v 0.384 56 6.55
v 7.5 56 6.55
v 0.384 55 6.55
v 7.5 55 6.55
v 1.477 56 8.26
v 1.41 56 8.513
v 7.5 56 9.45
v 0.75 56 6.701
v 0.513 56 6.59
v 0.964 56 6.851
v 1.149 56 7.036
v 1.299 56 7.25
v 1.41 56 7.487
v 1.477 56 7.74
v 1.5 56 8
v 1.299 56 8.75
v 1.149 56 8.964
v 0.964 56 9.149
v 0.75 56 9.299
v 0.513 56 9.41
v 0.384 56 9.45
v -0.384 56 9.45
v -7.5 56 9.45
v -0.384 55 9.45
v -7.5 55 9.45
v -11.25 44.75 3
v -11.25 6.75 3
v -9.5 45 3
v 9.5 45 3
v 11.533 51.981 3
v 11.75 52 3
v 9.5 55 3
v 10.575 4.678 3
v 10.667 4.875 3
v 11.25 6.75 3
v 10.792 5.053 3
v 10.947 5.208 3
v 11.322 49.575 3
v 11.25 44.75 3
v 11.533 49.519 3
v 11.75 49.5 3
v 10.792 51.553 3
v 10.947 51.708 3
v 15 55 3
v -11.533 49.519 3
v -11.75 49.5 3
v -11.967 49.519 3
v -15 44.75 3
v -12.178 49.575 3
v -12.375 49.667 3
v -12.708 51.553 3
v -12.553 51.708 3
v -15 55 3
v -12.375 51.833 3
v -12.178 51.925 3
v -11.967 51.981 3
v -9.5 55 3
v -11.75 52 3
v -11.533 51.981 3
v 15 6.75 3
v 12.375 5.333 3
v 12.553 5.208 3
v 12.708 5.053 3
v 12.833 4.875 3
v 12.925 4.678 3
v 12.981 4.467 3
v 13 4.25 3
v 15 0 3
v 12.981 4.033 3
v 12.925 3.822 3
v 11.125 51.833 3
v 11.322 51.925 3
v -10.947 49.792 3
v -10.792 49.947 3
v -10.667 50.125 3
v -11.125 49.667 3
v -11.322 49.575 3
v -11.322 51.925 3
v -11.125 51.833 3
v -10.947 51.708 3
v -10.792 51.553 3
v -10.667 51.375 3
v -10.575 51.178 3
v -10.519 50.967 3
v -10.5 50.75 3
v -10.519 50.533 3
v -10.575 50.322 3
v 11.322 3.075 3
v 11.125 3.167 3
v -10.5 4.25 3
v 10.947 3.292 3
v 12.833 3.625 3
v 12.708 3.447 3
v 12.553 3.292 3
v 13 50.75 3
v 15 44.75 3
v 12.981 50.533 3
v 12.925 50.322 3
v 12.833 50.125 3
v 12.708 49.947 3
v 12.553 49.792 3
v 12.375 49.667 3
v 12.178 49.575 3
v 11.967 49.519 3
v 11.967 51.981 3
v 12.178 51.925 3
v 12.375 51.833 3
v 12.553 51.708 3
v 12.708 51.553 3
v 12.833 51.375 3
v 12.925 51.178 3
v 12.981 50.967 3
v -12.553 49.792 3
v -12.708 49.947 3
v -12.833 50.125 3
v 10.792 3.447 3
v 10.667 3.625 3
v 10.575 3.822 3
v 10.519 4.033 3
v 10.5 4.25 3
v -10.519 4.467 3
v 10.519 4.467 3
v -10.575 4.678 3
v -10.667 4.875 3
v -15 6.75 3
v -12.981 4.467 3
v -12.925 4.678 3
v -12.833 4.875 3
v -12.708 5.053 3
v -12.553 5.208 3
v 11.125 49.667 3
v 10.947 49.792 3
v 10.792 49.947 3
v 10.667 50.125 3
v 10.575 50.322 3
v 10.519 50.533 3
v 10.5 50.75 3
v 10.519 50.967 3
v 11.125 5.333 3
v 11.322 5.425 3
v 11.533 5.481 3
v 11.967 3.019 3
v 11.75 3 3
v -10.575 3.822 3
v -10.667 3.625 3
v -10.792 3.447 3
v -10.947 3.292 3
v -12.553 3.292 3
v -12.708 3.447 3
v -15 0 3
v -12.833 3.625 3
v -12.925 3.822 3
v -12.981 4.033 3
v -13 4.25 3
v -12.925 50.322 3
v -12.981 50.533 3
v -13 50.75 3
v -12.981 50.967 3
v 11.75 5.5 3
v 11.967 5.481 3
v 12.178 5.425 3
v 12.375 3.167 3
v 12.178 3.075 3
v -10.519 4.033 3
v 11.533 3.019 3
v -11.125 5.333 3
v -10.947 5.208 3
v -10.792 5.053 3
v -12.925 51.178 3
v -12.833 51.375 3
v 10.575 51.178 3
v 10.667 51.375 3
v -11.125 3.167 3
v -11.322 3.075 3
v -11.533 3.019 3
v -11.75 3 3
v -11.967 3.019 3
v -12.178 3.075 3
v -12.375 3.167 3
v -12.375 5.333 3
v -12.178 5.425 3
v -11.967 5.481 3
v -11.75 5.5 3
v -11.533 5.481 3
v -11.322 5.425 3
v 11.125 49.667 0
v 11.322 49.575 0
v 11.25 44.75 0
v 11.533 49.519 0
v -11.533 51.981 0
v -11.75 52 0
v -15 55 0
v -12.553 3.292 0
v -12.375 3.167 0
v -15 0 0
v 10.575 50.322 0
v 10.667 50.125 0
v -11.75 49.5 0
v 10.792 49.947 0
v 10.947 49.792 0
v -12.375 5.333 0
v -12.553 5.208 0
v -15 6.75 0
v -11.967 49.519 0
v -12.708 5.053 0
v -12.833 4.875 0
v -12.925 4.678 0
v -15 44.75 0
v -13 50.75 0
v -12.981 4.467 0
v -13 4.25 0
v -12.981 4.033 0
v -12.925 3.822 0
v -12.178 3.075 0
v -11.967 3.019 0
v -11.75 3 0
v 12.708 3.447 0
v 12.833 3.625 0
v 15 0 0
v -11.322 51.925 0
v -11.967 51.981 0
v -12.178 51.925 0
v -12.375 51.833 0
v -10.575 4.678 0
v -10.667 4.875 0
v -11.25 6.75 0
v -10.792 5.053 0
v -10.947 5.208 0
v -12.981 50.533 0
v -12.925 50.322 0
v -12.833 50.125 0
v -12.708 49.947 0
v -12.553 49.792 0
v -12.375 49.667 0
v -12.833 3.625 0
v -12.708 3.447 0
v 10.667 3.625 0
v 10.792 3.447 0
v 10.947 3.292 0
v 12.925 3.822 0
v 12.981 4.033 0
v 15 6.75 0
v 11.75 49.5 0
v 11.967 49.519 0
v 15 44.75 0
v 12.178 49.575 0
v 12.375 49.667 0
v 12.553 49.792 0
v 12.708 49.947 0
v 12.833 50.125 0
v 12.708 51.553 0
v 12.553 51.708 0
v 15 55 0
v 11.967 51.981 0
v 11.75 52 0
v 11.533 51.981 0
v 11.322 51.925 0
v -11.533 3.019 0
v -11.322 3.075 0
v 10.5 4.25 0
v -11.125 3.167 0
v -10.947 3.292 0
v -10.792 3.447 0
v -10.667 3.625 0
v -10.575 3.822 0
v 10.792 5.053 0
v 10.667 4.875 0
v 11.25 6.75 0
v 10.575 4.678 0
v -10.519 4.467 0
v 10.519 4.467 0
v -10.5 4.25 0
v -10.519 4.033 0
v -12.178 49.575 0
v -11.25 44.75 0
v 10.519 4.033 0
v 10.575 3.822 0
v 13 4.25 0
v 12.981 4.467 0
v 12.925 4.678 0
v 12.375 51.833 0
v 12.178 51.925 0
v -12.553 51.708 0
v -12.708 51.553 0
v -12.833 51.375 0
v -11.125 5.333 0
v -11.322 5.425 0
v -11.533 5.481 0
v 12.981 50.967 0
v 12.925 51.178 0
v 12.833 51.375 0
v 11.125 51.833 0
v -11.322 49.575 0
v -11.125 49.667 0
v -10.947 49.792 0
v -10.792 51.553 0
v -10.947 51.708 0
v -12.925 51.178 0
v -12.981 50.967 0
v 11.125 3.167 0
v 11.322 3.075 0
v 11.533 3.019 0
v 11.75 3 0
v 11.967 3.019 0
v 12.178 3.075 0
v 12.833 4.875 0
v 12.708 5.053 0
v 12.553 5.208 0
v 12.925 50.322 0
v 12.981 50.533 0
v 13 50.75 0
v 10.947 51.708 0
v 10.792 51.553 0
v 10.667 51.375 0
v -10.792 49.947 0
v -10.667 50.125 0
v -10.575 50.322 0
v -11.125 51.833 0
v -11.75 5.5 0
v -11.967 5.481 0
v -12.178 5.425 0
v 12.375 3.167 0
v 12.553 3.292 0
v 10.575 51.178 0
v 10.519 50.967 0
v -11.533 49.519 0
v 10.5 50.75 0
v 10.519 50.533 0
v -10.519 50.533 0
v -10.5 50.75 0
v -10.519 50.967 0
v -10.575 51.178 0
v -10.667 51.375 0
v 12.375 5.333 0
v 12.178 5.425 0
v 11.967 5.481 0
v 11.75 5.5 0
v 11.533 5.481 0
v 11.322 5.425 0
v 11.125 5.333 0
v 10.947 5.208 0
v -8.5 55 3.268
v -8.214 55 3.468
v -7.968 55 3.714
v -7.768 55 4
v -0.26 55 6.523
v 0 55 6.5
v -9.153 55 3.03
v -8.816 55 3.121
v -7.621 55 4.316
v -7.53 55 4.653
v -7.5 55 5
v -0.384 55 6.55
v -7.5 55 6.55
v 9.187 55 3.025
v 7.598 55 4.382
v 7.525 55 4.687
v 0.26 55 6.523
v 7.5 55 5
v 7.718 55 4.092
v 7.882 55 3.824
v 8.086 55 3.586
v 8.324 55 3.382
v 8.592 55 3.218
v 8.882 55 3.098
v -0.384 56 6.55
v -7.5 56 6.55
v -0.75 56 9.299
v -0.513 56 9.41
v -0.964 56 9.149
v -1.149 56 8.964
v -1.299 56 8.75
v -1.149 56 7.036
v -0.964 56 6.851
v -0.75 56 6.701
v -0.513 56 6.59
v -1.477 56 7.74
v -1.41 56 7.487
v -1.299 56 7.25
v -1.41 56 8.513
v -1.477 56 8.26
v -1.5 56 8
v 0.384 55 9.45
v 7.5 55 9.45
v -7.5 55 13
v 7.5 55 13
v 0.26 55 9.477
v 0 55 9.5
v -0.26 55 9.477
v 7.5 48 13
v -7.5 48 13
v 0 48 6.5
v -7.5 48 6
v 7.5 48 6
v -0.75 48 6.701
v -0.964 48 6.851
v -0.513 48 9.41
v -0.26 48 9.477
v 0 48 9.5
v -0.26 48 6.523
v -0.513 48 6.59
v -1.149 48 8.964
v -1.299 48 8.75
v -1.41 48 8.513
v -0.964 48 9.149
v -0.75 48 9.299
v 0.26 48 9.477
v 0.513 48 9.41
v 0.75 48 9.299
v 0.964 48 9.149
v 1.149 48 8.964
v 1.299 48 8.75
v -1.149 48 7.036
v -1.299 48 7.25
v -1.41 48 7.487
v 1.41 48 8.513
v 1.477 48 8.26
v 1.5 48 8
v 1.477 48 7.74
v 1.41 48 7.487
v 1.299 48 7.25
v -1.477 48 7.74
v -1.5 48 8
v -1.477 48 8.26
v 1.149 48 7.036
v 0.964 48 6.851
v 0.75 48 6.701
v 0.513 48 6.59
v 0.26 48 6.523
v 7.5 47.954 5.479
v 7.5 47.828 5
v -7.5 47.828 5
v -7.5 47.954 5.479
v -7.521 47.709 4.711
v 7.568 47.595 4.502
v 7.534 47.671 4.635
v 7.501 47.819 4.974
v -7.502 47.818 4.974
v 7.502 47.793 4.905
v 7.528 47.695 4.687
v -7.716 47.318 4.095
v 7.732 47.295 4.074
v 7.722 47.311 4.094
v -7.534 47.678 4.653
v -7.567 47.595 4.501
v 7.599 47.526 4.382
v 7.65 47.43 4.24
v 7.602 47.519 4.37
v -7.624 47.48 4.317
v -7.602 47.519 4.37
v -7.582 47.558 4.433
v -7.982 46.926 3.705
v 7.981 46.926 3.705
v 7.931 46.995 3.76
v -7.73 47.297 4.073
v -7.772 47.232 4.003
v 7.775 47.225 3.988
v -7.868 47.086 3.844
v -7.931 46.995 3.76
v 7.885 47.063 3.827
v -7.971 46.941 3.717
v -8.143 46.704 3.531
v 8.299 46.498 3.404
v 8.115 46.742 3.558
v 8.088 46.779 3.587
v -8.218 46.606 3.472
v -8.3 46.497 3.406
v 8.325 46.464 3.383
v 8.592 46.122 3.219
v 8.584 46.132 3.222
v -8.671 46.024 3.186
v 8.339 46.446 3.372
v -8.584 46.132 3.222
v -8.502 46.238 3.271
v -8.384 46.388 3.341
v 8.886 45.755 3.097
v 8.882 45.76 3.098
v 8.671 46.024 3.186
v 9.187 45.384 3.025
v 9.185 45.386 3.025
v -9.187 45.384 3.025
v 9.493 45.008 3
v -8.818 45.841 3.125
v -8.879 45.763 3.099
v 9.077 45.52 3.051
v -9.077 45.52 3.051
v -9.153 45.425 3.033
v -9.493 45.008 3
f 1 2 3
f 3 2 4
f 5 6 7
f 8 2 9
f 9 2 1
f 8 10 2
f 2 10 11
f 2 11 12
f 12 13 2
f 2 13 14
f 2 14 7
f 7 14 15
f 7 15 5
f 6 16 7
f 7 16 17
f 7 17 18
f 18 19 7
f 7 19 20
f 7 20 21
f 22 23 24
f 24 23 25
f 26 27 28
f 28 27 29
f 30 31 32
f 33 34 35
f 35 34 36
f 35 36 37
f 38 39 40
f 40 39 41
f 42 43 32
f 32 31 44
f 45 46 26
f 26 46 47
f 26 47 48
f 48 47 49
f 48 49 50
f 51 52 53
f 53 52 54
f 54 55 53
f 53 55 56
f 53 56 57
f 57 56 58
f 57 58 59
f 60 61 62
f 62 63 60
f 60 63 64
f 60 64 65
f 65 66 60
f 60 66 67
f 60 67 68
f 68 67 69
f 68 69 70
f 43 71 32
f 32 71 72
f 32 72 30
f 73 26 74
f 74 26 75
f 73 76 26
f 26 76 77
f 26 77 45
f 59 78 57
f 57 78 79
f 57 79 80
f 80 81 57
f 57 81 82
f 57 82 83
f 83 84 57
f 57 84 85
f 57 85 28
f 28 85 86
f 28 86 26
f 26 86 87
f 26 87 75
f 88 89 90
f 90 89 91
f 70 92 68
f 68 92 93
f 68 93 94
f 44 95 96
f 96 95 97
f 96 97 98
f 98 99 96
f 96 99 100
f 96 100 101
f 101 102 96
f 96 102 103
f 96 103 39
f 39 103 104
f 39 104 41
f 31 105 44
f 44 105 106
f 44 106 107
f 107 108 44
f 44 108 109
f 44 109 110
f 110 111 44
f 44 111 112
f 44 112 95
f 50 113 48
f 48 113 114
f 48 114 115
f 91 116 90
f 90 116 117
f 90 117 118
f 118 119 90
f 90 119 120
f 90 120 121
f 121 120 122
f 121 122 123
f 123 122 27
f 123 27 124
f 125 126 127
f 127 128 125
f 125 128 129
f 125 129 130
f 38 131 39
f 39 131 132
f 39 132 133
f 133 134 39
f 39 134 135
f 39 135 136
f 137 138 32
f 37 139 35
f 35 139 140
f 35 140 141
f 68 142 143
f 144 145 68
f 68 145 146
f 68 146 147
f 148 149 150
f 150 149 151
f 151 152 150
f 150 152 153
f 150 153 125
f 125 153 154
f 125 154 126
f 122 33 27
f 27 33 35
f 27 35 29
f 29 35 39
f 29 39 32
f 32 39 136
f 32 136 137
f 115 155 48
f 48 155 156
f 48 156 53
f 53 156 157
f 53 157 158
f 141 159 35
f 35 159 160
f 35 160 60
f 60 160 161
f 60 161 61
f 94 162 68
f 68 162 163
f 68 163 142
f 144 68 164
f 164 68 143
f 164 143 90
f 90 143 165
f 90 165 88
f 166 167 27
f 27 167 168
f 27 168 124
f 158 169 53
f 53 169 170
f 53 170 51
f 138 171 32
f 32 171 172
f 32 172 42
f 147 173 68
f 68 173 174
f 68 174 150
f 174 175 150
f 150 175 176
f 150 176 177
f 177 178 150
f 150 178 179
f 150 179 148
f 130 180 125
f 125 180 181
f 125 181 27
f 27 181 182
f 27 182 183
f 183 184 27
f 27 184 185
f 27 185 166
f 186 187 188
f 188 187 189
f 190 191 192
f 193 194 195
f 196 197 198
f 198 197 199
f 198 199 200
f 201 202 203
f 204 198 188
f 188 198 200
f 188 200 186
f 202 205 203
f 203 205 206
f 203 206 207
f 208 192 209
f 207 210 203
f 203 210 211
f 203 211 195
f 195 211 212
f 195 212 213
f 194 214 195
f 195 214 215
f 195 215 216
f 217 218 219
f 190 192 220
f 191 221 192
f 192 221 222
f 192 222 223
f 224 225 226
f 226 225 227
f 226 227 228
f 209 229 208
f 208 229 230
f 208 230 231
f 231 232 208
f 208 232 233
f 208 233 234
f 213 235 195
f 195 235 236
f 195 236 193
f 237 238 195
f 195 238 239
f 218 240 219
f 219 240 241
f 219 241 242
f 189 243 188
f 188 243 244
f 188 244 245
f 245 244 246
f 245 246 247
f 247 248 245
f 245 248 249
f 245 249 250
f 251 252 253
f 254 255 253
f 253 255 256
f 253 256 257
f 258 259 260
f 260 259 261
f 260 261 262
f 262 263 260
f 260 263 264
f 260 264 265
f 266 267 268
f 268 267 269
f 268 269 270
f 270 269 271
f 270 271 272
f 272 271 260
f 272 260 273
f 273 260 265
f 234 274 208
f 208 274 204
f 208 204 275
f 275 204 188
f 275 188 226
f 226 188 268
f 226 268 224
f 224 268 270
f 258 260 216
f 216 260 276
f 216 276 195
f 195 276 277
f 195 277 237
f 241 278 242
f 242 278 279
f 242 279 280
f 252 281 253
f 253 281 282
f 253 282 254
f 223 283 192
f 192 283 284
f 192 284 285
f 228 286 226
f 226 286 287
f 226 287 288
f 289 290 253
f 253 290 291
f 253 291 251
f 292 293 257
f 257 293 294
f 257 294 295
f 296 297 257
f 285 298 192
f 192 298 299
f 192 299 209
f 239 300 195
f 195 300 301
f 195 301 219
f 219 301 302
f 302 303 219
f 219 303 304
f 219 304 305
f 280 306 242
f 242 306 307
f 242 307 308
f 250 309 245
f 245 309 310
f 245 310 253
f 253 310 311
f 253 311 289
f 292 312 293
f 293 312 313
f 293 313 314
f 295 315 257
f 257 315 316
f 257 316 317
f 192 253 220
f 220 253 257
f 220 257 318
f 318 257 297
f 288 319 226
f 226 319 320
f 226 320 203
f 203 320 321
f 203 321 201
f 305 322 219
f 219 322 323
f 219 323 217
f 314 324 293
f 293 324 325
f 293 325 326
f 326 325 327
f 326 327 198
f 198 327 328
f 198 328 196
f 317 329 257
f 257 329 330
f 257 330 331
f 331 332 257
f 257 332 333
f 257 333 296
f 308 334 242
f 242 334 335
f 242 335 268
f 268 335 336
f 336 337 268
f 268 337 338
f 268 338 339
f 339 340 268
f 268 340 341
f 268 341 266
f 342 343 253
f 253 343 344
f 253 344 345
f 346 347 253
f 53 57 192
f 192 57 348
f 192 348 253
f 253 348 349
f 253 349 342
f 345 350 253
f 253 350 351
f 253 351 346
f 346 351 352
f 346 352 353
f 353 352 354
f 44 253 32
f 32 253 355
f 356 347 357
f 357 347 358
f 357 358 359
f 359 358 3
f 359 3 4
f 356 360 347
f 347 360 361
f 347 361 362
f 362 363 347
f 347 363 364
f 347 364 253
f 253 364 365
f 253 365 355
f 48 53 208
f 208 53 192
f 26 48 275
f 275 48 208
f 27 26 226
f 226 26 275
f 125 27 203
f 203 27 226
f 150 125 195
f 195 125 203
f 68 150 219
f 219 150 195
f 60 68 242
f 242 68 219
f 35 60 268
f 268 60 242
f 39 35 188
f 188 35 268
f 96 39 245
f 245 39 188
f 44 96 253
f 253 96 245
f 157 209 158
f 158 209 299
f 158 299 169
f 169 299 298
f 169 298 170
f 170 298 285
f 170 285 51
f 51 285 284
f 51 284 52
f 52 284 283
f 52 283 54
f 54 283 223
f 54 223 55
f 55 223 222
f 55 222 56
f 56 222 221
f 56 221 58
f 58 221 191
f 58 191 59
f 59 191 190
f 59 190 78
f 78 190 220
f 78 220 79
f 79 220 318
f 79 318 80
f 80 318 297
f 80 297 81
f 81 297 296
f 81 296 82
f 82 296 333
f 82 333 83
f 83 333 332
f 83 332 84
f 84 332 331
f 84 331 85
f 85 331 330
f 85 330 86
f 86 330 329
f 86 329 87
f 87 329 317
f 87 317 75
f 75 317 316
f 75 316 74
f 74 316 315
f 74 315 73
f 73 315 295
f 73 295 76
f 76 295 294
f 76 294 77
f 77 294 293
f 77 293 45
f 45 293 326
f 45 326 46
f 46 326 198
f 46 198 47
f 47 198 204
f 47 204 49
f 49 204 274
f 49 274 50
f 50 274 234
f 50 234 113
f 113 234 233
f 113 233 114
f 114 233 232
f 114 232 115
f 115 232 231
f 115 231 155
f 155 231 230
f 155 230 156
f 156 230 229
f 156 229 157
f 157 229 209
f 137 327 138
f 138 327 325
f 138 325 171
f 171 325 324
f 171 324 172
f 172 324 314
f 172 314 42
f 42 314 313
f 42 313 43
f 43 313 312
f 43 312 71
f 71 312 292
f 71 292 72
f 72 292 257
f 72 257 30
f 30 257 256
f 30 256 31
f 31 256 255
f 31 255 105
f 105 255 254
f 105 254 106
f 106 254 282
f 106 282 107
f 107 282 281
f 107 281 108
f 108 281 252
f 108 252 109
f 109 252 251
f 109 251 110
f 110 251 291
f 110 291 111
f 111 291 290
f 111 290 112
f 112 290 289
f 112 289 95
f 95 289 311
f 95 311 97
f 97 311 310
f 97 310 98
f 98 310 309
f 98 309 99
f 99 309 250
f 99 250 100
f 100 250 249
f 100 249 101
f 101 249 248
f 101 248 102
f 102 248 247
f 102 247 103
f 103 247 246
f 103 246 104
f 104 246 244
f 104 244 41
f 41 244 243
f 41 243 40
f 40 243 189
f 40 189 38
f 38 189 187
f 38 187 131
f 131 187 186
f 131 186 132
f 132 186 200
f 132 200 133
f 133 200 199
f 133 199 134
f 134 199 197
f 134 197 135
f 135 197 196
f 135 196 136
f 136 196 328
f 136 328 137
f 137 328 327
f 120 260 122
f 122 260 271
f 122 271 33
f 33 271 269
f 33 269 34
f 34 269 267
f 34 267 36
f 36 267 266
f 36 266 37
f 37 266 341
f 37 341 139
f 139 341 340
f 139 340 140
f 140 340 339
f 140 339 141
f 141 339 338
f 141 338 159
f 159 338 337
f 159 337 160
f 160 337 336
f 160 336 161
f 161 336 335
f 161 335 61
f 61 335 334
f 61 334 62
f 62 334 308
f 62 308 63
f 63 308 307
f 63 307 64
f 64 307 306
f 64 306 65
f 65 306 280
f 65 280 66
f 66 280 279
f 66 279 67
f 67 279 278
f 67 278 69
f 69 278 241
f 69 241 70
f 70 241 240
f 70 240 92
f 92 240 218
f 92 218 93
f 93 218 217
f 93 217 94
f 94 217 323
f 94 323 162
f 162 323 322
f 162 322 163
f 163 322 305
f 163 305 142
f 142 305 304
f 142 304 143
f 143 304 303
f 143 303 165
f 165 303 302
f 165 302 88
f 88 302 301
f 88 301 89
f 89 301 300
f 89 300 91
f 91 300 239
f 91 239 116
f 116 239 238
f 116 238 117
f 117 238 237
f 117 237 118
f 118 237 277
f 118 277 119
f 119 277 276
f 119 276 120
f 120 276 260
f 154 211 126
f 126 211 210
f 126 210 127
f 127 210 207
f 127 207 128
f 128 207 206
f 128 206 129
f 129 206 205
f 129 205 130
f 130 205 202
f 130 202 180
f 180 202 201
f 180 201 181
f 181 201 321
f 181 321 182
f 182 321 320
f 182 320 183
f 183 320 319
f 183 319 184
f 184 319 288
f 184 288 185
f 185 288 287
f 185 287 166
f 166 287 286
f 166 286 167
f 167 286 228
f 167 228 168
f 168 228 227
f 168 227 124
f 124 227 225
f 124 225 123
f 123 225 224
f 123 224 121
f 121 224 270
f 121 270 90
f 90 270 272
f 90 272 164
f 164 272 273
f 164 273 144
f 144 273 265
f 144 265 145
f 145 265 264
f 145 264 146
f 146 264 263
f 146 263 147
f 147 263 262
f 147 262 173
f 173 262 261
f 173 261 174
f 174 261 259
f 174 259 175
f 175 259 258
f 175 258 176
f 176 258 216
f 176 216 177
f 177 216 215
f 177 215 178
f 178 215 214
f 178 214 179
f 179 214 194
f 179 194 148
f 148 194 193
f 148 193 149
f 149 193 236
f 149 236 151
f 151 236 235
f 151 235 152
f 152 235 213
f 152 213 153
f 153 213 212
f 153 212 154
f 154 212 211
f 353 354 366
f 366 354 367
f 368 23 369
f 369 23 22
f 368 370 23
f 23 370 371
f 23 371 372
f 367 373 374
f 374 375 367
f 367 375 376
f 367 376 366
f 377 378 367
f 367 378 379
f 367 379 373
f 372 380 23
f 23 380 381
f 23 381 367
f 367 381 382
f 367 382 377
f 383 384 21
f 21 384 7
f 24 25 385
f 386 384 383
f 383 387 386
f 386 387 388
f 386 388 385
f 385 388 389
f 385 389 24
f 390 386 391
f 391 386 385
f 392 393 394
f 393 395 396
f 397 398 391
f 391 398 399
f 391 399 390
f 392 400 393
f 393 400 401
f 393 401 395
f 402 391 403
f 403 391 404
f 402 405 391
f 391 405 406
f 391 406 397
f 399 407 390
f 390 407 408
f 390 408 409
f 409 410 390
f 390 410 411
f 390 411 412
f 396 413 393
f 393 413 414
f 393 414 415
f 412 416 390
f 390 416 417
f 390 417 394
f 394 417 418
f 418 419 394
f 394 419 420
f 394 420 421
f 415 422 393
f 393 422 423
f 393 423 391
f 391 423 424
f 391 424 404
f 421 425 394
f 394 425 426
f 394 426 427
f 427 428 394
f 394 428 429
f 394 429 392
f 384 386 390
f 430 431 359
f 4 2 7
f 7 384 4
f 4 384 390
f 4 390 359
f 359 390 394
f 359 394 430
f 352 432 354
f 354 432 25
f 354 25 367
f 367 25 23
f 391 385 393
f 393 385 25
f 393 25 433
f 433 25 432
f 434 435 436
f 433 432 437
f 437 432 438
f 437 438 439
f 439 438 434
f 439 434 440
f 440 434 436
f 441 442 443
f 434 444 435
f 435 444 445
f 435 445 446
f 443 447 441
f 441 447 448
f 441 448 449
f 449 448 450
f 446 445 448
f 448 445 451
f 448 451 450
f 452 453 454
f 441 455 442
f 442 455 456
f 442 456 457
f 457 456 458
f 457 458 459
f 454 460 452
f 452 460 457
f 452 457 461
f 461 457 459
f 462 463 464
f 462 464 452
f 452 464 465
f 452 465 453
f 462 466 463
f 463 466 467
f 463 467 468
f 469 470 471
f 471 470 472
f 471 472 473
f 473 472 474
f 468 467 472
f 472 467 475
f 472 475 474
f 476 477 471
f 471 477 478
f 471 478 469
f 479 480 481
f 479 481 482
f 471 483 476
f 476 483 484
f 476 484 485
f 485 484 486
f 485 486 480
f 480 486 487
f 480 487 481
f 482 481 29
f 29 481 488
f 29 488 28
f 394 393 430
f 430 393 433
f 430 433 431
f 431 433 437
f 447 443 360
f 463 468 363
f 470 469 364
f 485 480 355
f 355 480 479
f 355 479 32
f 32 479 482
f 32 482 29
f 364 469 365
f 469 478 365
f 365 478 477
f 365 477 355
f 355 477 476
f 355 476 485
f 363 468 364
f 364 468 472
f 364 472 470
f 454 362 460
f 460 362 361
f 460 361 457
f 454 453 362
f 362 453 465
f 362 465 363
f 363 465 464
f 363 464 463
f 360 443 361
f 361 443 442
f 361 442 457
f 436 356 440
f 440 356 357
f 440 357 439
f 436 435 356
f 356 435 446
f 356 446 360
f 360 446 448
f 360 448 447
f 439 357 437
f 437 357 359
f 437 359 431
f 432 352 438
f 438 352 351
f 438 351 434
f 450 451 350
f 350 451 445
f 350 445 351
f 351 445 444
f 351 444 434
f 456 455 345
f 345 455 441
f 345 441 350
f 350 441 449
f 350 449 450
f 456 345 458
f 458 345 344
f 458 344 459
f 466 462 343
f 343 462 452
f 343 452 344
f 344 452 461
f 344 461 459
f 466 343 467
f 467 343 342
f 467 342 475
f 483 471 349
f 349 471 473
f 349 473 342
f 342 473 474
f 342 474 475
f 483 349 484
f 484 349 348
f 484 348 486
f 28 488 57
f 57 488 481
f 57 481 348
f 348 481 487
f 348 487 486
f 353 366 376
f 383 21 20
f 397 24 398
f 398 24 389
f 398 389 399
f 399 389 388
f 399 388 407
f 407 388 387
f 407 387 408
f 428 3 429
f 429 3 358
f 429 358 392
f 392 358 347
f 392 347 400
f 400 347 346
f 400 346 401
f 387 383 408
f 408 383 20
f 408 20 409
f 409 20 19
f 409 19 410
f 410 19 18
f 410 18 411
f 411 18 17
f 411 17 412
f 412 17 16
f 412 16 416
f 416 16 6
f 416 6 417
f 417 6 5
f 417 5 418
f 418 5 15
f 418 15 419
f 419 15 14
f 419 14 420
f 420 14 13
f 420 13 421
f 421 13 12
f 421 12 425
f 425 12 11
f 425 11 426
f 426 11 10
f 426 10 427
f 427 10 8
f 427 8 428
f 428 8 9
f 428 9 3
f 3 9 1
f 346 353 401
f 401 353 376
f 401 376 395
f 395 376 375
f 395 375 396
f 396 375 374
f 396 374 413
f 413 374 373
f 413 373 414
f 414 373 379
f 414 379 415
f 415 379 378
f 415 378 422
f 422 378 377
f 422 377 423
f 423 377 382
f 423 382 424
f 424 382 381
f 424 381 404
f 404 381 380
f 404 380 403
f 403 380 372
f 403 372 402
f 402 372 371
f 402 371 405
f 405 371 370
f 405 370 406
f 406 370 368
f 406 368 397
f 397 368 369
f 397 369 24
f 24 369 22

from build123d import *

# Parameters (mm, degrees)
SKETCH1_R              = 1.25
MAIN_DEPTH             = 3
MAKERBEAMSUPPORT_DEPTH = 7.5
FILLET1_R              = 3
FILLET2_R              = 2
SKETCH3_R              = 1.5
CUT_EXTRUDE1_DEPTH     = 57


with BuildPart() as part:
    # Sketch1 → Main (new body)
    with BuildSketch(Plane.XY):
        Polygon((-15, 55), (-15, 44.75), (-11.25, 44.75), (-11.25, 6.75), (-15, 6.75), (-15, 0), (15, 0), (15, 6.75), (11.25, 6.75), (11.25, 44.75), (15, 44.75), (15, 55), align=None)
        with Locations((-11.75, 50.75)):
            Circle(SKETCH1_R, mode=Mode.SUBTRACT)
        with Locations((11.75, 50.75)):
            Circle(SKETCH1_R, mode=Mode.SUBTRACT)
        with Locations((11.75, 4.25)):
            Circle(SKETCH1_R, mode=Mode.SUBTRACT)
        with Locations((-11.75, 4.25)):
            Circle(SKETCH1_R, mode=Mode.SUBTRACT)
    extrude(amount=MAIN_DEPTH)

    # Sketch2 → MakerBeamSupport (add, symmetric)
    with BuildSketch(Plane(origin=(0, 0, 0), x_dir=(0, 0, -1), z_dir=(1, 0, 0))):
        Polygon((-13, 55), (-9.45, 55), (-9.45, 56), (-6.55, 56), (-6.55, 55), (-3, 55), (-3, 48), (-13, 48), align=None)
    extrude(amount=MAKERBEAMSUPPORT_DEPTH, both=True)

    # Fillet1
    fillet1_edges = [part.edges().sort_by_distance(p)[0] for p in [
        (0, 48, 3),
    ]]
    fillet(fillet1_edges, radius=FILLET1_R)

    # Fillet2
    fillet2_edges = [part.edges().sort_by_distance(p)[0] for p in [
        (-7.5, 51.5, 3),
        (7.5, 51.5, 3),
    ]]
    fillet(fillet2_edges, radius=FILLET2_R)

    # Sketch3 → Cut-Extrude1 (cut, through all)
    with BuildSketch(Plane(origin=(0, 56, 0), x_dir=(1, 0, 0), z_dir=(0, 1, 0))):
        with Locations((0, -8)):
            Circle(SKETCH3_R)
    extrude(amount=-CUT_EXTRUDE1_DEPTH, mode=Mode.SUBTRACT)


solid = part.part
